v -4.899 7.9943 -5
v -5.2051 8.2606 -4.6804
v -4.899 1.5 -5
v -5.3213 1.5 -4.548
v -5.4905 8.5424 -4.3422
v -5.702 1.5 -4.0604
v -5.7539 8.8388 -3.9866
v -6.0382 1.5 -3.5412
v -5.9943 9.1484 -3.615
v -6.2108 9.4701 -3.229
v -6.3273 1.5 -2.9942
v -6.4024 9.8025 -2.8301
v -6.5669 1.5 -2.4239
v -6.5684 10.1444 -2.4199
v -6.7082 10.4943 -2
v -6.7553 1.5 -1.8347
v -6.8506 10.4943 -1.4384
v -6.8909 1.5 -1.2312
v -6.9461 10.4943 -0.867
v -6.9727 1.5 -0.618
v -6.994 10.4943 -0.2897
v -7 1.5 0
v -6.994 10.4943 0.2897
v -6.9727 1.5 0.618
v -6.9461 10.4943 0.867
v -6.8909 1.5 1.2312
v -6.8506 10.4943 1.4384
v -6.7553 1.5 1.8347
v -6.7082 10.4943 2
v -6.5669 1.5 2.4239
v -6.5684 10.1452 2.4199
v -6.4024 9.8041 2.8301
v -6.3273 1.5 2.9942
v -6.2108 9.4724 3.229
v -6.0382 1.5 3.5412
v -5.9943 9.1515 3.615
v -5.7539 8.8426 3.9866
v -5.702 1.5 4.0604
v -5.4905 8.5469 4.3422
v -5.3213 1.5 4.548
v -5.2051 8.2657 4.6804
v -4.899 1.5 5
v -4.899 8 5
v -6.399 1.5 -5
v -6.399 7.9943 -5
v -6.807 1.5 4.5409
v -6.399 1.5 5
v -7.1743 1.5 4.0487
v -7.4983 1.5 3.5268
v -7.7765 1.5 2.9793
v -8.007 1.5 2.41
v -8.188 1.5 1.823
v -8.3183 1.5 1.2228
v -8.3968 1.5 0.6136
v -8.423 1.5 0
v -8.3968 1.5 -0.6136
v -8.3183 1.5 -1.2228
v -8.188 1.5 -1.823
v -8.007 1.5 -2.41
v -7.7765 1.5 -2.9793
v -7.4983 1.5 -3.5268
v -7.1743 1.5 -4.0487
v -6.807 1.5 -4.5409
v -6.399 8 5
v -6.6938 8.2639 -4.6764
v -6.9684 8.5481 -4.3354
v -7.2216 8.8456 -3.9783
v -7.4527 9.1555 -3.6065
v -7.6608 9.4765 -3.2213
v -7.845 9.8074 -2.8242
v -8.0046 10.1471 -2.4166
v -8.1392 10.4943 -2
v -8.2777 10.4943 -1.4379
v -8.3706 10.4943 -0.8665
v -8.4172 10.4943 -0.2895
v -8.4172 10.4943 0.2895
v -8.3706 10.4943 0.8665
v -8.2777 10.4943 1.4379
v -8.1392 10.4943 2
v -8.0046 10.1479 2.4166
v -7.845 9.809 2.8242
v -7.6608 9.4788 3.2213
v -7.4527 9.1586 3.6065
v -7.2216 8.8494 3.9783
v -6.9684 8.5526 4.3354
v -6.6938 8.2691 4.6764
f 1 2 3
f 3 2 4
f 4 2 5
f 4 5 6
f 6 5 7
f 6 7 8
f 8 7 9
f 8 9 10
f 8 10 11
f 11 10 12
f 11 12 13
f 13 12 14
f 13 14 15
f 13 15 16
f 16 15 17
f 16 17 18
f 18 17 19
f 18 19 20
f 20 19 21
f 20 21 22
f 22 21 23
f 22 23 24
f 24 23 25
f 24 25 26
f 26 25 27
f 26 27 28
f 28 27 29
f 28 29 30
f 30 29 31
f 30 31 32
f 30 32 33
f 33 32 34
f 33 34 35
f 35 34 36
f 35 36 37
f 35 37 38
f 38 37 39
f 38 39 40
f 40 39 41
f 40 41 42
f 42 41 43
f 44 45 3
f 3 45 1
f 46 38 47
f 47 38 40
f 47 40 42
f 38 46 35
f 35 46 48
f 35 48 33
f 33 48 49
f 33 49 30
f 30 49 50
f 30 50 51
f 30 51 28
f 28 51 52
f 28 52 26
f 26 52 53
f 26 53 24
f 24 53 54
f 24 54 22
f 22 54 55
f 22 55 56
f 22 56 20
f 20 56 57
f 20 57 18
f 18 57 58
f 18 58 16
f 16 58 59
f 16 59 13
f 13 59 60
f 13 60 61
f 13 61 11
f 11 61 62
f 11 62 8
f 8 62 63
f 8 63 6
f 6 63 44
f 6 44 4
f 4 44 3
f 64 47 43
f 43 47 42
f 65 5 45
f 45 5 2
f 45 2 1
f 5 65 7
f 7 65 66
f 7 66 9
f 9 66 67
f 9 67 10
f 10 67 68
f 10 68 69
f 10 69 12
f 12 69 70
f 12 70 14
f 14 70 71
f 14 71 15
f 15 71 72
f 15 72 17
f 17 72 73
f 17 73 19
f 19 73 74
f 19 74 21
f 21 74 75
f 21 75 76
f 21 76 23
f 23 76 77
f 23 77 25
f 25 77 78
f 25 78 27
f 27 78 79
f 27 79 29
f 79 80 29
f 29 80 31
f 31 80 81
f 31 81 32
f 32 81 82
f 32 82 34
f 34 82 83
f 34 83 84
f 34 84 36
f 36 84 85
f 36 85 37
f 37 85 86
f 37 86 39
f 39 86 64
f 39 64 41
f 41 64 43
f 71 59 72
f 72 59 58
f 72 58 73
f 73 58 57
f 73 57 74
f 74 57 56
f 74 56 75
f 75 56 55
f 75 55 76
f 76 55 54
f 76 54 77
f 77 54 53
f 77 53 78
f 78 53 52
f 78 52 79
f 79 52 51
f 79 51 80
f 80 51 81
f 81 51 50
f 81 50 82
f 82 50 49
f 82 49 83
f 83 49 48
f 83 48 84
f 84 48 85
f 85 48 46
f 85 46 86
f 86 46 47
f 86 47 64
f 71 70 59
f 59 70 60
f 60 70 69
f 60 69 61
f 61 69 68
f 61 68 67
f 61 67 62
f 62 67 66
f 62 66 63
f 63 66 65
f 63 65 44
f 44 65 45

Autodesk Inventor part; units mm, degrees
ref_plane "YZ Plane" through (0, 0, 0) normal (1, 0, 0) x (0, 1, 0)
ref_plane "XZ Plane" through (0, 0, 0) normal (0, 1, 0) x (-1, 0, 0)
ref_plane "XY Plane" through (0, 0, 0) normal (0, 0, 1) x (1, 0, 0)
sketch "Sketch1" plane through (0, 0, 0) normal (0, 1, 0) x (-1, 0, 0)
  arc A0 (0, -7) -> (0, 7) centre (0, 0) ccw
  line L0 (0, 7) -> (0, -7)
  dimension "d0" = 14
extrude "Extrusion1" add sketch "Sketch1" along normal blind 12
ref_plane "Work Plane1" through (-10, 0, 7) normal (1, 0, 0) x (0, 0, -1)
sketch "Sketch2" plane through (-10, 0, 7) normal (1, 0, 0) x (0, 0, -1)
  line L0 (2, 8) -> (2, 1.5)
  line L1 (2, 1.5) -> (12, 1.5)
  line L2 (12, 1.5) -> (12, 7.9943)
  line L3 (9, 10.4943) -> (5, 10.4943)
  line L4 (9, 10.4943) -> (12, 7.9943)
  line L5 (5, 10.4943) -> (2, 8)
  line L6 (14, 0) -> (14, 12) projected
  point P0 (7, 0)
  dimension "d9" = 10
  dimension "d10" = 6.5
  dimension "d12" = 4
  dimension "d14" = 3
  dimension "d15" = 3
  dimension "d24" = 2
extrude "Extrusion2" add sketch "Sketch2" along normal blind 10
sketch "Sketch7" plane through (0, 0, 0) normal (0, 1, 0) x (-1, 0, 0)
  arc A0 (0, -7) -> (0, 7) centre (0, 0) ccw
  line L0 (0, 7) -> (0, -7)
  line L1 (0, -7) -> (0, 7)
  dimension "d40" = 7
extrude "Extrusion7" cut sketch "Sketch7" along normal through all
sketch "Sketch9" plane through (0, 0, 0) normal (0, 1, 0) x (-1, 0, 0)
  arc A0 (6.399, -5) -> (6.399, 5) centre (1.2353, 0) ccw
  arc A1 (6.399, -5) -> (6.399, 5) centre (10.7308, 0) ccw
  point P0 (0, 0)
extrude "Extrusion9" cut sketch "Sketch9" along normal through all both and the other way through all
properties part number "14mm_radius_mold_with_crystal_skull"
